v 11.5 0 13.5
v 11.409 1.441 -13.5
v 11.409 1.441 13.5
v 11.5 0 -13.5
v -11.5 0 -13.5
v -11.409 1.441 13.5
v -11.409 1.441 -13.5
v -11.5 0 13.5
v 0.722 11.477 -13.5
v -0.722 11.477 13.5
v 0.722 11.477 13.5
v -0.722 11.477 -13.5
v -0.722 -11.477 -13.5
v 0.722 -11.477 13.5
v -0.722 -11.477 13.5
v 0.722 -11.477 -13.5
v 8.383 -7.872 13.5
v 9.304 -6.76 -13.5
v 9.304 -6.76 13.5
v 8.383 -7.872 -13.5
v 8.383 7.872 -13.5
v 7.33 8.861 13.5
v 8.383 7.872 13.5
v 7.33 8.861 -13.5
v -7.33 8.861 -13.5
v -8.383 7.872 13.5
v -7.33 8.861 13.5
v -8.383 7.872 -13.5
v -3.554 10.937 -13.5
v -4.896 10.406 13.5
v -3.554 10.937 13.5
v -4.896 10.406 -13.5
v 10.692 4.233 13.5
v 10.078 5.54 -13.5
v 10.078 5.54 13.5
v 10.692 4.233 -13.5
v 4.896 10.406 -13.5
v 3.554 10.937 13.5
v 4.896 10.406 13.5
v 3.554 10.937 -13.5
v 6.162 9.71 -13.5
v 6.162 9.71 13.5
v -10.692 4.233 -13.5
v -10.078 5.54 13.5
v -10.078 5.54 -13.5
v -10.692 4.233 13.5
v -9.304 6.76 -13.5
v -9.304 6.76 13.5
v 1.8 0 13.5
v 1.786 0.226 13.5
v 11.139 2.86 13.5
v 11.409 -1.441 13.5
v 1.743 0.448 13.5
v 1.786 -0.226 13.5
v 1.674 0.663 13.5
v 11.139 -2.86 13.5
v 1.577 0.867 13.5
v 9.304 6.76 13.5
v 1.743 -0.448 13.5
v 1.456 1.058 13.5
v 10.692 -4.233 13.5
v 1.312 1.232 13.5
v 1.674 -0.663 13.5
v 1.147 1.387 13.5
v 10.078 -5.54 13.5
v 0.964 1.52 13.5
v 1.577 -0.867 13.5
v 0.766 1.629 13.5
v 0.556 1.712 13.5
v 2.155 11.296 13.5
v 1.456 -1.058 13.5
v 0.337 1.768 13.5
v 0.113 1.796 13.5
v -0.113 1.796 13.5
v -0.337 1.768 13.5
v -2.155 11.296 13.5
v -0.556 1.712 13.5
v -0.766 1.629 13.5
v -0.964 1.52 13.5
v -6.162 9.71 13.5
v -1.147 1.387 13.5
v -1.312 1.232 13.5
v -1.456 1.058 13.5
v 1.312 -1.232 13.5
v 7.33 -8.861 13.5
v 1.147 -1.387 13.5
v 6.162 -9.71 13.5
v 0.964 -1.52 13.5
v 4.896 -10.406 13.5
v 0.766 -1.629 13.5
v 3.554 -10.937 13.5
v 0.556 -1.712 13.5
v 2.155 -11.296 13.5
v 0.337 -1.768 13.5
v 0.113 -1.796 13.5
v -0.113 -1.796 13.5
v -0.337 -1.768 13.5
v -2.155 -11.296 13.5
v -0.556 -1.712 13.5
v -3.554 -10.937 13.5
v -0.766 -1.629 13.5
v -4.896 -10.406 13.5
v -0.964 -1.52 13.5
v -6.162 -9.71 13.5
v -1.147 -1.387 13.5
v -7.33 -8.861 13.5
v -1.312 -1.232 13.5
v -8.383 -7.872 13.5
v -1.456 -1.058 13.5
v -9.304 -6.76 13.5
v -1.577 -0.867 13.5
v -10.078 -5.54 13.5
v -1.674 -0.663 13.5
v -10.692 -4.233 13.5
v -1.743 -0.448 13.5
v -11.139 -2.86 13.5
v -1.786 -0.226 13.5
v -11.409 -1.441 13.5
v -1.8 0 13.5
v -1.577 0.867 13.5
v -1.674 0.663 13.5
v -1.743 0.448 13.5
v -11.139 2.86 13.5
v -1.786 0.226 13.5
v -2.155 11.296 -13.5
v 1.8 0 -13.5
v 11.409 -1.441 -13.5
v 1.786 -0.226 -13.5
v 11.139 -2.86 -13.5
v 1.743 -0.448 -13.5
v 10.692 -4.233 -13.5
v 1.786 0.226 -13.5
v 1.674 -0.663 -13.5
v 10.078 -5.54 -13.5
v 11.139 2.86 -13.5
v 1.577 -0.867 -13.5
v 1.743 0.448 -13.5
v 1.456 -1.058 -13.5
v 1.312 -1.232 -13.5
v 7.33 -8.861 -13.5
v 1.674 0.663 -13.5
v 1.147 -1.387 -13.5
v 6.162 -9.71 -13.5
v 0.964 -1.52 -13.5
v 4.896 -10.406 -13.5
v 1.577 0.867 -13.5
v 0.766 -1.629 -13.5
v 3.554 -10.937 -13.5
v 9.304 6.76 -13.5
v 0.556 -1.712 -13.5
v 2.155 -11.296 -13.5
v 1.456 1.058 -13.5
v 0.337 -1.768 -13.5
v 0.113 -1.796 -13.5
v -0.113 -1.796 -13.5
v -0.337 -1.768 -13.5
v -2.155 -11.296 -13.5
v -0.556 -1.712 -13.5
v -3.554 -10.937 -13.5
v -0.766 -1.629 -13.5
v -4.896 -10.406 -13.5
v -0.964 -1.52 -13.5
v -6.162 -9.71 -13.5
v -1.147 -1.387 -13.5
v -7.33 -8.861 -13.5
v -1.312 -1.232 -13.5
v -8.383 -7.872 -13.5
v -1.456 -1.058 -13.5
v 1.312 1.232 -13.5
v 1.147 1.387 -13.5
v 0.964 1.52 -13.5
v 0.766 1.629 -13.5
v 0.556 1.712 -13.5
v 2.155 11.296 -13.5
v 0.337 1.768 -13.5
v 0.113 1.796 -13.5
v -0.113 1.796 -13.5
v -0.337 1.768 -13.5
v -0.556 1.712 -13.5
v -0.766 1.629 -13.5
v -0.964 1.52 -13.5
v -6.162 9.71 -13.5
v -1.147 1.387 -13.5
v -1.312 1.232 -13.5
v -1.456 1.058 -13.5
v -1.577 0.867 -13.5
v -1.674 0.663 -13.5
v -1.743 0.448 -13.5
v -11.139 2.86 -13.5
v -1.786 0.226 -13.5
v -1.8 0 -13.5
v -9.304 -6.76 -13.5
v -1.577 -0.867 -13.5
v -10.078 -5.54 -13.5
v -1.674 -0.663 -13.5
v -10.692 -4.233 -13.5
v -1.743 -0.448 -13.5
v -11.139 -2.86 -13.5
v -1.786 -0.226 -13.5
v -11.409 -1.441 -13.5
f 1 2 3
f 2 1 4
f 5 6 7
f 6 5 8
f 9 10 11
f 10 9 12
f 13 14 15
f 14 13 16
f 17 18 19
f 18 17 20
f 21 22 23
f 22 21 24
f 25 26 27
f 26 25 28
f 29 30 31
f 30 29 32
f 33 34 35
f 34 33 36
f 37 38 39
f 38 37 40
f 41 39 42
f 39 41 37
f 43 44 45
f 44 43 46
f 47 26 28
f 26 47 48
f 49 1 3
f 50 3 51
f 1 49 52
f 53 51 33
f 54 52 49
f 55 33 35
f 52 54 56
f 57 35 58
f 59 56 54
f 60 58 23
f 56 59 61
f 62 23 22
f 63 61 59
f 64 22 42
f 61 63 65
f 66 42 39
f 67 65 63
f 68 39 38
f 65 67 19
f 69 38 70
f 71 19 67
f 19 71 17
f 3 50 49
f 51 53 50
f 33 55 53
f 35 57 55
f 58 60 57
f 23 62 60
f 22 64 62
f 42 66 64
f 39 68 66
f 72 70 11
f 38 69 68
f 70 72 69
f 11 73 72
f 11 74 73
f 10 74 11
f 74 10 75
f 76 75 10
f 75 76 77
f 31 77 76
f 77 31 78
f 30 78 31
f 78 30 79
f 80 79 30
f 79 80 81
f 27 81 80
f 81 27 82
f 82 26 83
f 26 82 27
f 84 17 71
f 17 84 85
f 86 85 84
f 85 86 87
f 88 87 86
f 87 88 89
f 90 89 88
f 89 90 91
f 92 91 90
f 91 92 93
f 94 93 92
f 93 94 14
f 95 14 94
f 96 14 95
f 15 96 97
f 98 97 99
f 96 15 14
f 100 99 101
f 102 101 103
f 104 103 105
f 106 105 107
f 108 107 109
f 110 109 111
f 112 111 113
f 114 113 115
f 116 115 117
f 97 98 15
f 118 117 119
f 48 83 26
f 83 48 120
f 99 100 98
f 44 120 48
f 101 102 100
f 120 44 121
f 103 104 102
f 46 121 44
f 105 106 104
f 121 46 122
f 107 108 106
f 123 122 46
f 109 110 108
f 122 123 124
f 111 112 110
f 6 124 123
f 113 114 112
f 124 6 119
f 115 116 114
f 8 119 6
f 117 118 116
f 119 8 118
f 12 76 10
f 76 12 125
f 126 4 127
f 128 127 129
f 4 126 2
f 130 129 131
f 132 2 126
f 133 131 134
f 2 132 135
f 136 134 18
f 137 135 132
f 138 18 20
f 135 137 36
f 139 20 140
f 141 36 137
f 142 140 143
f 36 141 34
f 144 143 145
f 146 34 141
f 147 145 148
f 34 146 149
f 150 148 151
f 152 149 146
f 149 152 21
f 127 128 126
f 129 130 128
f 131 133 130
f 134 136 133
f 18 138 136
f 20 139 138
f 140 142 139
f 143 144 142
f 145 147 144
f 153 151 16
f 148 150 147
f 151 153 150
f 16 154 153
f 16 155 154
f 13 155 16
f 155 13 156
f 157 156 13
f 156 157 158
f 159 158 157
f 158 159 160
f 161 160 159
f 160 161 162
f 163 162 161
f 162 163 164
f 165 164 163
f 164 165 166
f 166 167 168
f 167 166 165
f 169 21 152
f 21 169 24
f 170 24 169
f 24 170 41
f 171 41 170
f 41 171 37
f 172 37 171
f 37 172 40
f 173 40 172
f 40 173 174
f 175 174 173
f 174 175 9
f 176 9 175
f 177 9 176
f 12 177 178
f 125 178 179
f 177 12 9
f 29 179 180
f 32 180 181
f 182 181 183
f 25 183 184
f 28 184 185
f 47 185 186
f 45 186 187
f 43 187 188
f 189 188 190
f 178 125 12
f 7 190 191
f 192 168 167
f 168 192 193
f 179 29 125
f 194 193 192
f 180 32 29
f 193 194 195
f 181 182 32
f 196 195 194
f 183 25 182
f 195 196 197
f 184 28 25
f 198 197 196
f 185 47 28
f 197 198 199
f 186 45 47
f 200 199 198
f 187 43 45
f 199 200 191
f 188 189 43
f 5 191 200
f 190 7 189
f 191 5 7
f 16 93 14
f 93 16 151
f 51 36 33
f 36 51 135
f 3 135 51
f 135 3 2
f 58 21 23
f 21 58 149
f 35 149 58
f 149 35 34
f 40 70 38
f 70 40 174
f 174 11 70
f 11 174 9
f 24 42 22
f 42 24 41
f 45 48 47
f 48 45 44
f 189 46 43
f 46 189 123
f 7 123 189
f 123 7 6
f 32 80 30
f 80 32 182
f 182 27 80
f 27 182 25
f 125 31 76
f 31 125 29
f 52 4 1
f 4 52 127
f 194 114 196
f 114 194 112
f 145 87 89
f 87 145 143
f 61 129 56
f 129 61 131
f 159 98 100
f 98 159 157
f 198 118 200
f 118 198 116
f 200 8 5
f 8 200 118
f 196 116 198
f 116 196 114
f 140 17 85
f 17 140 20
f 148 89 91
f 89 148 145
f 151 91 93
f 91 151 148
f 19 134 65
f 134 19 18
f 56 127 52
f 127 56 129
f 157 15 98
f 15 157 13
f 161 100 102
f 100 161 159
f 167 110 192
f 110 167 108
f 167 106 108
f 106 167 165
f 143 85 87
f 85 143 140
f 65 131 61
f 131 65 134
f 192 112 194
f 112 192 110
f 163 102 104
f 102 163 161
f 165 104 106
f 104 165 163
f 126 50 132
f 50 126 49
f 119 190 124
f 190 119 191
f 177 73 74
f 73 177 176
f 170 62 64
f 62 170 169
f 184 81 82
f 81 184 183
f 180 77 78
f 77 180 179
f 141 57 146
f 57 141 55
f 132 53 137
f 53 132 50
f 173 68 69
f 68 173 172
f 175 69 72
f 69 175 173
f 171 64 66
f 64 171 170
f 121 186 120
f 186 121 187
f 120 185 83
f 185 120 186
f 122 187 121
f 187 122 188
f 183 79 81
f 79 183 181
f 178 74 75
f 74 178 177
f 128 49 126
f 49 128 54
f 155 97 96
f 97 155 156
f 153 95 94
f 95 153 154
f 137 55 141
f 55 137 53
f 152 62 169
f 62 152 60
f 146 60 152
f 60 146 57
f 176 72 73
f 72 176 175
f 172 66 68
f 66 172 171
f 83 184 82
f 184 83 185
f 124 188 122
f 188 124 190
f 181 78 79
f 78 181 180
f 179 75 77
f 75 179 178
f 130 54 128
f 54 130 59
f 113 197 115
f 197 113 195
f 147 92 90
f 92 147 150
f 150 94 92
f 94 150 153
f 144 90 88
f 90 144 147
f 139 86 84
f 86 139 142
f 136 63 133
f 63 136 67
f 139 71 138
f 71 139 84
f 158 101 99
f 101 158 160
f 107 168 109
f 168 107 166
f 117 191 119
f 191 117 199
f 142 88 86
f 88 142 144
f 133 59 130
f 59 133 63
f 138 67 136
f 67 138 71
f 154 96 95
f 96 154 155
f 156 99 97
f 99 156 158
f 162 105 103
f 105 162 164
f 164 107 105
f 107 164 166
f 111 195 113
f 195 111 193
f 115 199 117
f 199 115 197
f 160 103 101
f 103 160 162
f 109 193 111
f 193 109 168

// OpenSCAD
$fn = 50;


difference() {
	union() {
		translate(v = [0, 0, -13.5000000000]) {
			cylinder(h = 27, r = 11.5000000000);
		}
	}
	union() {
		translate(v = [0, 0, -100.0000000000]) {
			cylinder(h = 200, r = 1.8000000000);
		}
	}
}
